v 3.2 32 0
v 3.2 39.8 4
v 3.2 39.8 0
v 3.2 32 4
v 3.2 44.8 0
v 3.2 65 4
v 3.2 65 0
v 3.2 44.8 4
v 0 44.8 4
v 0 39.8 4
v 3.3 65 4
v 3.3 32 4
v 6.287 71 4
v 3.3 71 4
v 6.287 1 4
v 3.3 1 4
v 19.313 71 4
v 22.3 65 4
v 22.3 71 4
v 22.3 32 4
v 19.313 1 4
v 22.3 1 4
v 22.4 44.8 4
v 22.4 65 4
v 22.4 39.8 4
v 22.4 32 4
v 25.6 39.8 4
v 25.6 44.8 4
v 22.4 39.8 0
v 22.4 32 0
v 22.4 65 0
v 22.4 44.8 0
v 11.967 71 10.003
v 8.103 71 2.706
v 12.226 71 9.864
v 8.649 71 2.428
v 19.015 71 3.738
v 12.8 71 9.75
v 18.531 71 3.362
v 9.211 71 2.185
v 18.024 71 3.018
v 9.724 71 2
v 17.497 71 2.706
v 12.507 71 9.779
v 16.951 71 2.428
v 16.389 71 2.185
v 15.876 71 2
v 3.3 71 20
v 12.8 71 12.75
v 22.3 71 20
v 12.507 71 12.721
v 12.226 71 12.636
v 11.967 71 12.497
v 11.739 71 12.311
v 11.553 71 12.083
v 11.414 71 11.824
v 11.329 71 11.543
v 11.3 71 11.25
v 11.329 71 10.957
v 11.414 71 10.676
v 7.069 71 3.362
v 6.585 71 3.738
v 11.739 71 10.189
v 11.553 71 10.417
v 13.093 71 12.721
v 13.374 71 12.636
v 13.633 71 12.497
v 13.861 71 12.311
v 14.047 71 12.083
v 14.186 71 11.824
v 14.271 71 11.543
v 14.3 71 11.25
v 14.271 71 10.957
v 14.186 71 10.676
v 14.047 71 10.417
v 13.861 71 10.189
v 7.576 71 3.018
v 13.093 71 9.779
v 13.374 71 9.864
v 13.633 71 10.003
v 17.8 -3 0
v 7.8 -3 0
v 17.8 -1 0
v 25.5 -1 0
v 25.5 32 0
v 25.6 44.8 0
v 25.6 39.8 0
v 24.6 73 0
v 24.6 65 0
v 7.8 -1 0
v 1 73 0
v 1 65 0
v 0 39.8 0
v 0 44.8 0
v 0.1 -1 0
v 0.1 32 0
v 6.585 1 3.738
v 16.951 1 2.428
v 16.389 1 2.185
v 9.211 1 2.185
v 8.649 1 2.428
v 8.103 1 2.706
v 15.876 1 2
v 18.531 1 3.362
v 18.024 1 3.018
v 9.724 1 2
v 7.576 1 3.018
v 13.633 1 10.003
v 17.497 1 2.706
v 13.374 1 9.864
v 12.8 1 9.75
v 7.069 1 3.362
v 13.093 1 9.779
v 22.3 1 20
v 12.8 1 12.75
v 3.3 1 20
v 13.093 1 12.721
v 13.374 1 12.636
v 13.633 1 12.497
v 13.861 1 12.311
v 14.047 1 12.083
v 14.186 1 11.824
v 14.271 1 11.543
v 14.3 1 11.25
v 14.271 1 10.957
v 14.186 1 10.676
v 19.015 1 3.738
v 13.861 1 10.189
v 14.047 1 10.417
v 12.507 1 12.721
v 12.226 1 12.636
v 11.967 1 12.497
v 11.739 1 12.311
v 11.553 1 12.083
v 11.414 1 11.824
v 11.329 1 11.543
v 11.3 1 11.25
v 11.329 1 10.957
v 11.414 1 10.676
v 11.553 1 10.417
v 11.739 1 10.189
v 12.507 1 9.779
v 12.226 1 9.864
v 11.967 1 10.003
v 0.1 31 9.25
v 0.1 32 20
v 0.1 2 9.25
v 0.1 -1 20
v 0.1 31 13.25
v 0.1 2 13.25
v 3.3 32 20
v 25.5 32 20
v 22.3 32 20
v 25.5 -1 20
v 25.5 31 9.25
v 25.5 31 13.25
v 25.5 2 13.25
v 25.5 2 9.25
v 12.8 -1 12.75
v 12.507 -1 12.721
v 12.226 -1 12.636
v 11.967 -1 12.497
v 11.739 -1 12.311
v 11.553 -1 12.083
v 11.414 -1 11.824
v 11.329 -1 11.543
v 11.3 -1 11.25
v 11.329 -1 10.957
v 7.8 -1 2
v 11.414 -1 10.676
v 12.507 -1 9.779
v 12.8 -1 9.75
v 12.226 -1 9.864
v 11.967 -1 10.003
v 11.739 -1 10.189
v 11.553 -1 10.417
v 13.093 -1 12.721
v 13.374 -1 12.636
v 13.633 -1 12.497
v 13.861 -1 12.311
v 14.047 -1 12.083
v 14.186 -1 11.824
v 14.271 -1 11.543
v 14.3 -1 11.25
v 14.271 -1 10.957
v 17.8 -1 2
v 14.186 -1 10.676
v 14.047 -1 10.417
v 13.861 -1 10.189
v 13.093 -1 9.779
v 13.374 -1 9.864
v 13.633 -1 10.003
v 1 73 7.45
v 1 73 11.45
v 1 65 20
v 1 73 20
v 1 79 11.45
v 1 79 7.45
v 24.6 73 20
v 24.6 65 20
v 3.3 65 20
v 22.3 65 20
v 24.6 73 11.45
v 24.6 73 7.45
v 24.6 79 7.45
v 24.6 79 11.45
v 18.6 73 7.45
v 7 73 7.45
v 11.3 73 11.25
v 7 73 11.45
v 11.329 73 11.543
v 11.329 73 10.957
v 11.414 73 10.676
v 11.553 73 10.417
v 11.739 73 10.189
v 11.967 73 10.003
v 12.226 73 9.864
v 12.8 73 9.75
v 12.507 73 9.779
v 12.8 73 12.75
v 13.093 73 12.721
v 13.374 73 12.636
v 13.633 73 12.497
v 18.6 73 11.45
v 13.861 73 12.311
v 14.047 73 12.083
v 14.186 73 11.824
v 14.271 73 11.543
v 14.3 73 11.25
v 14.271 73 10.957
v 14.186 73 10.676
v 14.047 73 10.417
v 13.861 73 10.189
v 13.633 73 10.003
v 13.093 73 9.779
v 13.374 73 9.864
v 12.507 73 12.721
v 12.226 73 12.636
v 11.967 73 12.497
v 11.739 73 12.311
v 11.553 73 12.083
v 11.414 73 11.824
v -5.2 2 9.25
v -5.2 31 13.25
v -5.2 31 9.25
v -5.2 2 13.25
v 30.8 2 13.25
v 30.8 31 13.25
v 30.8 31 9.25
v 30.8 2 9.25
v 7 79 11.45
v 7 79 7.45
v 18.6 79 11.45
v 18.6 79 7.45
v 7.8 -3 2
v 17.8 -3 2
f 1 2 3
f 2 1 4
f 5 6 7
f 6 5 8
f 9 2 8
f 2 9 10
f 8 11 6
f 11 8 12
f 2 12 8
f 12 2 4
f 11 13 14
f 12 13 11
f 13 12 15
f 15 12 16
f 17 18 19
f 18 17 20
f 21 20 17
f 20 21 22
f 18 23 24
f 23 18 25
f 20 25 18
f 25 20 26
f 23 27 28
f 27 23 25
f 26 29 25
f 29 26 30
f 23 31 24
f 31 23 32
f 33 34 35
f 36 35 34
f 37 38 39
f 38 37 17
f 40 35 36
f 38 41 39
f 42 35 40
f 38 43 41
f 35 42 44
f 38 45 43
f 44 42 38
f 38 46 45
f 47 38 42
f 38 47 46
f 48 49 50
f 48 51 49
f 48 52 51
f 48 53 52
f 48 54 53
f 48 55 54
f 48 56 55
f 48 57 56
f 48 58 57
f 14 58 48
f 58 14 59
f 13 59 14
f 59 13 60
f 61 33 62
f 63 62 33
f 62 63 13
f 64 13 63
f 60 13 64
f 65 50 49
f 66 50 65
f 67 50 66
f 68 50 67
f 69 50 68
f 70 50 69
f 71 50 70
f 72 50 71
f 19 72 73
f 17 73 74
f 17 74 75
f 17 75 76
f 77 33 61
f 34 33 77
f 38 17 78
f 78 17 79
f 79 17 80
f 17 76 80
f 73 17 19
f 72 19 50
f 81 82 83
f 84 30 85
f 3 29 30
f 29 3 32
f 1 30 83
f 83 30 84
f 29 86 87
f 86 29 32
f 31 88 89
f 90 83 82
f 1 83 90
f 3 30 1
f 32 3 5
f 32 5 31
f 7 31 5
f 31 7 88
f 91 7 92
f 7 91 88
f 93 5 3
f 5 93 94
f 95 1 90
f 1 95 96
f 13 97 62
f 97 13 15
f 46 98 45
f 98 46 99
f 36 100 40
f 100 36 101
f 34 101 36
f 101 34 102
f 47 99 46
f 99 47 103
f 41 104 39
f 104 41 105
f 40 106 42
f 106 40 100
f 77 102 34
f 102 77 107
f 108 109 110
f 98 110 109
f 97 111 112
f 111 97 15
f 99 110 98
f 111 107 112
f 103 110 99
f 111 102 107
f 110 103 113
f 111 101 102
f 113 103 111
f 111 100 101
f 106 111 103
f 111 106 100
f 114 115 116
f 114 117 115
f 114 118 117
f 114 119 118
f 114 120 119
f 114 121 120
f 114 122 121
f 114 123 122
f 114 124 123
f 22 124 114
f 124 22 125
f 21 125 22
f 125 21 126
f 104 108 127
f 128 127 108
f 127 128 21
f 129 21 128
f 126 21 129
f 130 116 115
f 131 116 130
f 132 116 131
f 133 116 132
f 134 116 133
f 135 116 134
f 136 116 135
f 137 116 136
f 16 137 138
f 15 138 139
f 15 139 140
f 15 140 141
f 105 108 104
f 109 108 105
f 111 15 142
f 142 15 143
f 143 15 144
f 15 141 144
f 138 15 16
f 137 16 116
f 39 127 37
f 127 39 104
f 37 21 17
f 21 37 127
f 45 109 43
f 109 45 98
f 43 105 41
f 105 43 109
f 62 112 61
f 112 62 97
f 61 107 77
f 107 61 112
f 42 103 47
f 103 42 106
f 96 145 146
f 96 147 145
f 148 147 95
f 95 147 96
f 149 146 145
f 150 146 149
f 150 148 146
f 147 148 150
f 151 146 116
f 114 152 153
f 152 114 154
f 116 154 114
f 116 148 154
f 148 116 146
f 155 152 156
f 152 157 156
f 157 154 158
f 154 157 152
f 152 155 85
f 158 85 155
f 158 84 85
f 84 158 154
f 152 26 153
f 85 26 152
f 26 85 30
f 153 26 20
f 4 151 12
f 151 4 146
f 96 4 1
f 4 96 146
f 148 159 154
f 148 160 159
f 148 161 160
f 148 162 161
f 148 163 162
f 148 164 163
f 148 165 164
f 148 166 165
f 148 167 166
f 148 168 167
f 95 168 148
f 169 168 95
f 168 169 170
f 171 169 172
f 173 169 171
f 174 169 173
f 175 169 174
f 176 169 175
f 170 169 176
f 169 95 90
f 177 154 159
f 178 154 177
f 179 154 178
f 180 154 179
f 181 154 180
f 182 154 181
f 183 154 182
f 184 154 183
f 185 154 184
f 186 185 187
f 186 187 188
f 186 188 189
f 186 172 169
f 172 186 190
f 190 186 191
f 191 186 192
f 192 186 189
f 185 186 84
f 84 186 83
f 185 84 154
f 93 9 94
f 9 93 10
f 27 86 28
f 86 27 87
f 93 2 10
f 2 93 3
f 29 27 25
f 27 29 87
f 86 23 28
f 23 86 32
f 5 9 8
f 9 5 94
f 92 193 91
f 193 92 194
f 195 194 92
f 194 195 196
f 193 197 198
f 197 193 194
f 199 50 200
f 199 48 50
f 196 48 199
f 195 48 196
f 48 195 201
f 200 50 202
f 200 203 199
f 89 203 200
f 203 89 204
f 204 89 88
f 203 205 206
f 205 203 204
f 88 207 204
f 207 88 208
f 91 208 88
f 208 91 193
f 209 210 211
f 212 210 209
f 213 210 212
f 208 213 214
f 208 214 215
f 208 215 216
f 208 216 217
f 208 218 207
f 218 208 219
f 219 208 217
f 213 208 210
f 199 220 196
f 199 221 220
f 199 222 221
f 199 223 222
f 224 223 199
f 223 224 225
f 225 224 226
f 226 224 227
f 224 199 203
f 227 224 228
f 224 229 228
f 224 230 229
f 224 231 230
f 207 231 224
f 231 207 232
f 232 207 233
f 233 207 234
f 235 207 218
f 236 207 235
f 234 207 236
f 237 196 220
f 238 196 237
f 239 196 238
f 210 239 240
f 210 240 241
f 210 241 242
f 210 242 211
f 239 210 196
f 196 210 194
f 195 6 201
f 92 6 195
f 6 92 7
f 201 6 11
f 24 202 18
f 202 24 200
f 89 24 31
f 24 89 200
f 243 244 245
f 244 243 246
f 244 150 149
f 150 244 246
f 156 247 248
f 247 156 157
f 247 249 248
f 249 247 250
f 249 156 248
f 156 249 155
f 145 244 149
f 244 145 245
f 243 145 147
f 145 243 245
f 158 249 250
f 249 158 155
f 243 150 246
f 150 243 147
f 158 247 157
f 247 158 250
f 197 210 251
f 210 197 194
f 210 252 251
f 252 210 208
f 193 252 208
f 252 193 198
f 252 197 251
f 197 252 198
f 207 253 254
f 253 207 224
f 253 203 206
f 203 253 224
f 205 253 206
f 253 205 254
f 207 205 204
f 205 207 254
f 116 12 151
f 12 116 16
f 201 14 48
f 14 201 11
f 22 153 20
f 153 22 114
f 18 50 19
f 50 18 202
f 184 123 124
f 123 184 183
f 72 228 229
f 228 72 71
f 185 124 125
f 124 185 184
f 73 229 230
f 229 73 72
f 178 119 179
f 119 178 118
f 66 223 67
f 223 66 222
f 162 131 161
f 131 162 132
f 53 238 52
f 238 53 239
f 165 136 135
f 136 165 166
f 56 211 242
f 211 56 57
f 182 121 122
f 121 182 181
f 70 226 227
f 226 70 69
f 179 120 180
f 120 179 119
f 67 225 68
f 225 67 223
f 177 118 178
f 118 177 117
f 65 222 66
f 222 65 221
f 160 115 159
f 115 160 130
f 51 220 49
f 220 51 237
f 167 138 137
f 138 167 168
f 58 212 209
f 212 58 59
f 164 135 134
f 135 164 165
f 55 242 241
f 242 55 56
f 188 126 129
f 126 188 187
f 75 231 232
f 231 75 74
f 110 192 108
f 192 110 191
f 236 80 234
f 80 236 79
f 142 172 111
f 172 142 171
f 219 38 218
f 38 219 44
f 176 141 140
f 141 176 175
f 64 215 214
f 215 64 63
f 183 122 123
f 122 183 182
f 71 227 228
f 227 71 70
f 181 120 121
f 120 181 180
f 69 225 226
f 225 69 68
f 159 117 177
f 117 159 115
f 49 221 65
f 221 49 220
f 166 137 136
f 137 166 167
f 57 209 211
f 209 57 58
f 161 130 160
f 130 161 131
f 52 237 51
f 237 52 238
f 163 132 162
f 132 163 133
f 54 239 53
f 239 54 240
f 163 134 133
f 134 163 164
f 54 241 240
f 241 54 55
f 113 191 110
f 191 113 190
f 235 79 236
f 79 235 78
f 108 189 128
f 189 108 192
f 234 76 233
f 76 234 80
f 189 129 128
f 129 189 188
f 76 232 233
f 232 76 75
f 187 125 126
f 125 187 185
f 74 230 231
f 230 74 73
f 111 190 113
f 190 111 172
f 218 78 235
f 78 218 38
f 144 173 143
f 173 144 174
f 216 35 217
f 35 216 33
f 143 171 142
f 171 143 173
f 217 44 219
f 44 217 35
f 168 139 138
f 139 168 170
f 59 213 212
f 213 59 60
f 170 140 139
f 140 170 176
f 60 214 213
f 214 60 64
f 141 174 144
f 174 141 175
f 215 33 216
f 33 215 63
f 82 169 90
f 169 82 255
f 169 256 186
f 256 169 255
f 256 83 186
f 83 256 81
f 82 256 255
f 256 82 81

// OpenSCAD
//battery();

module battery() {
color("lightgreen") {
translate([25.6/2,65+3,18.5/2+2]) rotate([90,0,0]) cylinder($fn=60, d=18.5, h=65);
translate([25.6/2,67+3,18.5/2+2]) rotate([90,0,0]) cylinder($fn=60, d=10, h=2);
}}

translate([25.6/2-5,-1-2,0]) cube([10,2,2]);

difference() {
translate([25.6/2-19.2/2,0,0]) cube([19.2,67+4,4]);
translate([25.6/2,65+6,18.5/2+2]) rotate([90,0,0]) cylinder($fn=100, d=19.5, h=70);
}

difference() {
    union(){
        translate([25.6/2-19.2/2,0,0]) cube([19.2,67+4,2]);
        
        translate([0.1,-1,0]) cube([25.4,33,20]);
        
        translate([0,32+7.8,0]) cube([25.6,5,4]);
        
        translate([0+1,70-5,0]) cube([25.6-2,8,20]);
        
        translate([(25.6-36)/2,2,18.5/2]) cube([36,29,4]);
        
        translate([0+1,73,18.5/2-1.8]) cube([6,6,4]);
        translate([25.6-5-2,73,18.5/2-1.8]) cube([6,6,4]);
    }
    translate([25.6/2-19/2,1,2]) cube([19,70,20]);
    translate([25.6/2,80,18.5/2+2]) rotate([90,0,0]) cylinder($fn=32, d=3, h=85);
}
